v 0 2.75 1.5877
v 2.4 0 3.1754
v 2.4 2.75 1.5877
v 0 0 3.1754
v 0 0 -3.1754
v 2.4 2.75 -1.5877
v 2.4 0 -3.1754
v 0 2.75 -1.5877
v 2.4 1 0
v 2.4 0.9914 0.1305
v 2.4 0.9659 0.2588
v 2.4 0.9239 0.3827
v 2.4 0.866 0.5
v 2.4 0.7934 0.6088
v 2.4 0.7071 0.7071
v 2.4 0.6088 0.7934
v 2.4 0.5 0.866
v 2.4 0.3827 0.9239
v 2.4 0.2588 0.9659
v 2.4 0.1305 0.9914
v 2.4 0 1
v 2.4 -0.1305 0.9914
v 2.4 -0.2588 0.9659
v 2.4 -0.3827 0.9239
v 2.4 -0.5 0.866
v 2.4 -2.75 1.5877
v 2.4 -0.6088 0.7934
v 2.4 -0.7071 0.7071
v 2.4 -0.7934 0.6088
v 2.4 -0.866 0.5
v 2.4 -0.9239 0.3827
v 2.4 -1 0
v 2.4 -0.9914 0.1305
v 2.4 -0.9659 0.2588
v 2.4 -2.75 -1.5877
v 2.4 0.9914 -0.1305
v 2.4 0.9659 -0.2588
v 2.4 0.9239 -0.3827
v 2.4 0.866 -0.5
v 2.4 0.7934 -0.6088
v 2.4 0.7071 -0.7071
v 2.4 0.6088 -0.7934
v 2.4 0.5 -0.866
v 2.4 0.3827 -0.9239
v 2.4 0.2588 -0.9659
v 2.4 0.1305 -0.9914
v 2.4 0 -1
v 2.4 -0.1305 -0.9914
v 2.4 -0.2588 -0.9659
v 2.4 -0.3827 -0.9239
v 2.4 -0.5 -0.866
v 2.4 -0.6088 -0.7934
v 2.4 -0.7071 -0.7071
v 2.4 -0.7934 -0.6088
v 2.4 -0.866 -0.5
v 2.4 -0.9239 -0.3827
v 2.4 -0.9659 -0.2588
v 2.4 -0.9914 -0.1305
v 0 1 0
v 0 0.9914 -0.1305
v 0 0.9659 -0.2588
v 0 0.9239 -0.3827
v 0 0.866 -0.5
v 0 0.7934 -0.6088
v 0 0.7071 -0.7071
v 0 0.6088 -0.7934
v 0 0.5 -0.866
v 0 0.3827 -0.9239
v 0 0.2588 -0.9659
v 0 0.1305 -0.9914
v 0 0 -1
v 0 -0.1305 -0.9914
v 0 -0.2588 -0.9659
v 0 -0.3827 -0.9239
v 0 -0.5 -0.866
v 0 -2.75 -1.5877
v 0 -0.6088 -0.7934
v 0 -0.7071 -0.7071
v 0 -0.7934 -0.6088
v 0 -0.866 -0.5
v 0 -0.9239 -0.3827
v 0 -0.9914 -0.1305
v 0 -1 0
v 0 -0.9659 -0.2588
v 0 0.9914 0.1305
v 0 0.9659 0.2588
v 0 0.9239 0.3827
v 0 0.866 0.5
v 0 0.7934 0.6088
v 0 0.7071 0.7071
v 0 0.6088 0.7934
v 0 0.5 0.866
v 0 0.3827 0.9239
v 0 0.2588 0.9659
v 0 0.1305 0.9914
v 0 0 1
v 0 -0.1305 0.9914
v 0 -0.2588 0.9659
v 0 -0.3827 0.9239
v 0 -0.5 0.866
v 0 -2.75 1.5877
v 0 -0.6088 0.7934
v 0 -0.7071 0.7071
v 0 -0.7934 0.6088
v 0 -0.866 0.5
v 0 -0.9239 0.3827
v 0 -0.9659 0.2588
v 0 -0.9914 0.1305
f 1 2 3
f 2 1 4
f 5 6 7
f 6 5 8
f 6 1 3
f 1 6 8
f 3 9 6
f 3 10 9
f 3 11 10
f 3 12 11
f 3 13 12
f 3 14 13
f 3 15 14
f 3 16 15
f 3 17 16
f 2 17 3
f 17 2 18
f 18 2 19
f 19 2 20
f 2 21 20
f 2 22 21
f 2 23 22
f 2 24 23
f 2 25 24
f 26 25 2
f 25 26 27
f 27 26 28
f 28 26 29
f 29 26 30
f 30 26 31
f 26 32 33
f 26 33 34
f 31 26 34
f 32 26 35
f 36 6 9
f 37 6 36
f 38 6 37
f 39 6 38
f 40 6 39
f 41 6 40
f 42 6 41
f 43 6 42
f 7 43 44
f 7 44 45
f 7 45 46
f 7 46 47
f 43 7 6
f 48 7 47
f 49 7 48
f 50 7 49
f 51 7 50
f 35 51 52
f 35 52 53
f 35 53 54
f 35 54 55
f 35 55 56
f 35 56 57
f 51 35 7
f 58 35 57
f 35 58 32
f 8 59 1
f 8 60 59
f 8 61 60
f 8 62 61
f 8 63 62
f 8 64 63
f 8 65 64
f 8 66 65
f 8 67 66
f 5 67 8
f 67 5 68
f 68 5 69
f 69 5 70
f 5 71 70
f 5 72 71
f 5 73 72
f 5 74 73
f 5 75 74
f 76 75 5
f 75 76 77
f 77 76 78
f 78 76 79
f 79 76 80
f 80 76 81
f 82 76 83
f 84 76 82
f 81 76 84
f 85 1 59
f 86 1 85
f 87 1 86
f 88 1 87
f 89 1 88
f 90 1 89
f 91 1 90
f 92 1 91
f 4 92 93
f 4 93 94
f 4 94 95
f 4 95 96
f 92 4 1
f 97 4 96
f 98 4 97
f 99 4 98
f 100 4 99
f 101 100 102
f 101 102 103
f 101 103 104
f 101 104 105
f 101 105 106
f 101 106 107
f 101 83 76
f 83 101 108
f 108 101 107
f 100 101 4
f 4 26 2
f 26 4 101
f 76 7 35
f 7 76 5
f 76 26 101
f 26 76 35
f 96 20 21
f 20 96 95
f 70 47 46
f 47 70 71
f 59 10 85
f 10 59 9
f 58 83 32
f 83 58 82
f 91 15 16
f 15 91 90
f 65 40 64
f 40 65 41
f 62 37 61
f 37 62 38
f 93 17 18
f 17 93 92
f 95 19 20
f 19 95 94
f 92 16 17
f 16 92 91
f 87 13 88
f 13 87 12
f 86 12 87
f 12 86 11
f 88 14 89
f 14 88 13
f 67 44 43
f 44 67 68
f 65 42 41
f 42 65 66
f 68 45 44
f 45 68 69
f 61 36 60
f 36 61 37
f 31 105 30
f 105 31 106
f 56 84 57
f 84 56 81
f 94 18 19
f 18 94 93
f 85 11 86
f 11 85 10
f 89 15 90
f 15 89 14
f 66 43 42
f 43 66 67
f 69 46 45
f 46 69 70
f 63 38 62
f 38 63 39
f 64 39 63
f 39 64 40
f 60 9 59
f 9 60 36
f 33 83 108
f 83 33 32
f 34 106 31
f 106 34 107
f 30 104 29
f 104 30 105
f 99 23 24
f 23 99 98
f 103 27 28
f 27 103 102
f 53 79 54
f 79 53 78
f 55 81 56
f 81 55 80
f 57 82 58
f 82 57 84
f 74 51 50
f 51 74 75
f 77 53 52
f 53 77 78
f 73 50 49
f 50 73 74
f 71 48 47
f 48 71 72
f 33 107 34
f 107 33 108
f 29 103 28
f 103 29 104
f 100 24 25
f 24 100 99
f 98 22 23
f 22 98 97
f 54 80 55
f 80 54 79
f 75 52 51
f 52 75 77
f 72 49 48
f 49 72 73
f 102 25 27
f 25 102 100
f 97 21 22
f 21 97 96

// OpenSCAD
// file: ../../../lib/nutsnbolts/data-access.scad
// Norm Nuts and Bolts - a OpenSCAD library
// Copyright (C) 2012  Johannes Kneer

// This program is free software: you can redistribute it and/or modify
// it under the terms of the GNU General Public License as published by
// the Free Software Foundation, either version 3 of the License, or
// (at your option) any later version.

// This program is distributed in the hope that it will be useful,
// but WITHOUT ANY WARRANTY; without even the implied warranty of
// MERCHANTABILITY or FITNESS FOR A PARTICULAR PURPOSE.  See the
// GNU General Public License for more details.

// You should have received a copy of the GNU General Public License
// along with this program.  If not, see <http://www.gnu.org/licenses/>.


// DATABASE ACCESS FUNCTIONS AND CONSTANTS



// == CONSTANTS ==

// screw table access keys
_NB_S_DESC            = 0;
_NB_S_FAMKEY			    = 1;
_NB_S_LENGTH          = 2;
_NB_S_NOTHREAD_LENGTH = 3;

_NB_F_DESC			      = 0;
_NB_F_OUTER_DIA       = 1;
_NB_F_INNER_DIA       = 2;
_NB_F_LEAD            = 3;
_NB_F_KEY             = 4;
_NB_F_KEY_DEPTH       = 5;
_NB_F_HEAD_HEIGHT     = 6;
_NB_F_HEAD_DIA        = 7;
_NB_F_NUT_KEY         = 8;
_NB_F_NUT_HEIGHT      = 9;
_NB_F_PITCH_FINE      = 10;
_NB_F_PITCH_MEDIUM    = 11;
_NB_F_PITCH_COARSE    = 12;


// == FUNCTIONS ==

// _get_screw("descriptor")   with descriptor = M8x25
//   find the line for a general object in the data matrix

function _get_screw(n) = data_screw[search([n], data_screw)[0]];
function _get_screw_fam(n) = data_screw_fam[search([_get_screw(n)[_NB_S_FAMKEY]], data_screw_fam)[0]];

function _get_fam(n) = data_screw_fam[search([n], data_screw_fam)[0]];


// _get_XXXXX("descriptor") functions
// find a single property in the database

function _get_desc(n)        = _get_screw(n)[_NB_S_DESC];
function _get_famkey(n)         = _get_screw(n)[_NB_S_FAMKEY];
function _get_length(n)      = _get_screw(n)[_NB_S_LENGTH];
function _get_nt_length(n)   = _get_screw(n)[_NB_S_NOTHREAD_LENGTH];

function _get_outer_dia(n)   = _get_screw_fam(n)[_NB_F_OUTER_DIA];
function _get_inner_dia(n)   = _get_screw_fam(n)[_NB_F_INNER_DIA];
function _get_lead(n)        = _get_screw_fam(n)[_NB_F_LEAD];
function _get_head_height(n) = _get_screw_fam(n)[_NB_F_HEAD_HEIGHT];
function _get_head_dia(n)    = _get_screw_fam(n)[_NB_F_HEAD_DIA];
function _get_nut_key(n)     = _get_screw_fam(n)[_NB_F_NUT_KEY];
function _get_nut_height(n)  = _get_screw_fam(n)[_NB_F_NUT_HEIGHT];
function _get_fine_pitch(n)  = _get_screw_fam(n)[_NB_F_PITCH_FINE];
function _get_medium_pitch(n)  = _get_screw_fam(n)[_NB_F_PITCH_MEDIUM];
function _get_coarse_pitch(n)  = _get_screw_fam(n)[_NB_F_PITCH_COARSE];
// main file
/**********************************************************************************************************************
 **
 ** parts/vitamins/nut_M3.scad
 **
 ** This file renders a nut of the dimensions specified by the file name.
 **
 **********************************************************************************************************************/

include <../../../lib/nutsnbolts/cyl_head_bolt.scad>;

$fn = 48;
rotate([0, -90, 0])
	nut("M3"); 
